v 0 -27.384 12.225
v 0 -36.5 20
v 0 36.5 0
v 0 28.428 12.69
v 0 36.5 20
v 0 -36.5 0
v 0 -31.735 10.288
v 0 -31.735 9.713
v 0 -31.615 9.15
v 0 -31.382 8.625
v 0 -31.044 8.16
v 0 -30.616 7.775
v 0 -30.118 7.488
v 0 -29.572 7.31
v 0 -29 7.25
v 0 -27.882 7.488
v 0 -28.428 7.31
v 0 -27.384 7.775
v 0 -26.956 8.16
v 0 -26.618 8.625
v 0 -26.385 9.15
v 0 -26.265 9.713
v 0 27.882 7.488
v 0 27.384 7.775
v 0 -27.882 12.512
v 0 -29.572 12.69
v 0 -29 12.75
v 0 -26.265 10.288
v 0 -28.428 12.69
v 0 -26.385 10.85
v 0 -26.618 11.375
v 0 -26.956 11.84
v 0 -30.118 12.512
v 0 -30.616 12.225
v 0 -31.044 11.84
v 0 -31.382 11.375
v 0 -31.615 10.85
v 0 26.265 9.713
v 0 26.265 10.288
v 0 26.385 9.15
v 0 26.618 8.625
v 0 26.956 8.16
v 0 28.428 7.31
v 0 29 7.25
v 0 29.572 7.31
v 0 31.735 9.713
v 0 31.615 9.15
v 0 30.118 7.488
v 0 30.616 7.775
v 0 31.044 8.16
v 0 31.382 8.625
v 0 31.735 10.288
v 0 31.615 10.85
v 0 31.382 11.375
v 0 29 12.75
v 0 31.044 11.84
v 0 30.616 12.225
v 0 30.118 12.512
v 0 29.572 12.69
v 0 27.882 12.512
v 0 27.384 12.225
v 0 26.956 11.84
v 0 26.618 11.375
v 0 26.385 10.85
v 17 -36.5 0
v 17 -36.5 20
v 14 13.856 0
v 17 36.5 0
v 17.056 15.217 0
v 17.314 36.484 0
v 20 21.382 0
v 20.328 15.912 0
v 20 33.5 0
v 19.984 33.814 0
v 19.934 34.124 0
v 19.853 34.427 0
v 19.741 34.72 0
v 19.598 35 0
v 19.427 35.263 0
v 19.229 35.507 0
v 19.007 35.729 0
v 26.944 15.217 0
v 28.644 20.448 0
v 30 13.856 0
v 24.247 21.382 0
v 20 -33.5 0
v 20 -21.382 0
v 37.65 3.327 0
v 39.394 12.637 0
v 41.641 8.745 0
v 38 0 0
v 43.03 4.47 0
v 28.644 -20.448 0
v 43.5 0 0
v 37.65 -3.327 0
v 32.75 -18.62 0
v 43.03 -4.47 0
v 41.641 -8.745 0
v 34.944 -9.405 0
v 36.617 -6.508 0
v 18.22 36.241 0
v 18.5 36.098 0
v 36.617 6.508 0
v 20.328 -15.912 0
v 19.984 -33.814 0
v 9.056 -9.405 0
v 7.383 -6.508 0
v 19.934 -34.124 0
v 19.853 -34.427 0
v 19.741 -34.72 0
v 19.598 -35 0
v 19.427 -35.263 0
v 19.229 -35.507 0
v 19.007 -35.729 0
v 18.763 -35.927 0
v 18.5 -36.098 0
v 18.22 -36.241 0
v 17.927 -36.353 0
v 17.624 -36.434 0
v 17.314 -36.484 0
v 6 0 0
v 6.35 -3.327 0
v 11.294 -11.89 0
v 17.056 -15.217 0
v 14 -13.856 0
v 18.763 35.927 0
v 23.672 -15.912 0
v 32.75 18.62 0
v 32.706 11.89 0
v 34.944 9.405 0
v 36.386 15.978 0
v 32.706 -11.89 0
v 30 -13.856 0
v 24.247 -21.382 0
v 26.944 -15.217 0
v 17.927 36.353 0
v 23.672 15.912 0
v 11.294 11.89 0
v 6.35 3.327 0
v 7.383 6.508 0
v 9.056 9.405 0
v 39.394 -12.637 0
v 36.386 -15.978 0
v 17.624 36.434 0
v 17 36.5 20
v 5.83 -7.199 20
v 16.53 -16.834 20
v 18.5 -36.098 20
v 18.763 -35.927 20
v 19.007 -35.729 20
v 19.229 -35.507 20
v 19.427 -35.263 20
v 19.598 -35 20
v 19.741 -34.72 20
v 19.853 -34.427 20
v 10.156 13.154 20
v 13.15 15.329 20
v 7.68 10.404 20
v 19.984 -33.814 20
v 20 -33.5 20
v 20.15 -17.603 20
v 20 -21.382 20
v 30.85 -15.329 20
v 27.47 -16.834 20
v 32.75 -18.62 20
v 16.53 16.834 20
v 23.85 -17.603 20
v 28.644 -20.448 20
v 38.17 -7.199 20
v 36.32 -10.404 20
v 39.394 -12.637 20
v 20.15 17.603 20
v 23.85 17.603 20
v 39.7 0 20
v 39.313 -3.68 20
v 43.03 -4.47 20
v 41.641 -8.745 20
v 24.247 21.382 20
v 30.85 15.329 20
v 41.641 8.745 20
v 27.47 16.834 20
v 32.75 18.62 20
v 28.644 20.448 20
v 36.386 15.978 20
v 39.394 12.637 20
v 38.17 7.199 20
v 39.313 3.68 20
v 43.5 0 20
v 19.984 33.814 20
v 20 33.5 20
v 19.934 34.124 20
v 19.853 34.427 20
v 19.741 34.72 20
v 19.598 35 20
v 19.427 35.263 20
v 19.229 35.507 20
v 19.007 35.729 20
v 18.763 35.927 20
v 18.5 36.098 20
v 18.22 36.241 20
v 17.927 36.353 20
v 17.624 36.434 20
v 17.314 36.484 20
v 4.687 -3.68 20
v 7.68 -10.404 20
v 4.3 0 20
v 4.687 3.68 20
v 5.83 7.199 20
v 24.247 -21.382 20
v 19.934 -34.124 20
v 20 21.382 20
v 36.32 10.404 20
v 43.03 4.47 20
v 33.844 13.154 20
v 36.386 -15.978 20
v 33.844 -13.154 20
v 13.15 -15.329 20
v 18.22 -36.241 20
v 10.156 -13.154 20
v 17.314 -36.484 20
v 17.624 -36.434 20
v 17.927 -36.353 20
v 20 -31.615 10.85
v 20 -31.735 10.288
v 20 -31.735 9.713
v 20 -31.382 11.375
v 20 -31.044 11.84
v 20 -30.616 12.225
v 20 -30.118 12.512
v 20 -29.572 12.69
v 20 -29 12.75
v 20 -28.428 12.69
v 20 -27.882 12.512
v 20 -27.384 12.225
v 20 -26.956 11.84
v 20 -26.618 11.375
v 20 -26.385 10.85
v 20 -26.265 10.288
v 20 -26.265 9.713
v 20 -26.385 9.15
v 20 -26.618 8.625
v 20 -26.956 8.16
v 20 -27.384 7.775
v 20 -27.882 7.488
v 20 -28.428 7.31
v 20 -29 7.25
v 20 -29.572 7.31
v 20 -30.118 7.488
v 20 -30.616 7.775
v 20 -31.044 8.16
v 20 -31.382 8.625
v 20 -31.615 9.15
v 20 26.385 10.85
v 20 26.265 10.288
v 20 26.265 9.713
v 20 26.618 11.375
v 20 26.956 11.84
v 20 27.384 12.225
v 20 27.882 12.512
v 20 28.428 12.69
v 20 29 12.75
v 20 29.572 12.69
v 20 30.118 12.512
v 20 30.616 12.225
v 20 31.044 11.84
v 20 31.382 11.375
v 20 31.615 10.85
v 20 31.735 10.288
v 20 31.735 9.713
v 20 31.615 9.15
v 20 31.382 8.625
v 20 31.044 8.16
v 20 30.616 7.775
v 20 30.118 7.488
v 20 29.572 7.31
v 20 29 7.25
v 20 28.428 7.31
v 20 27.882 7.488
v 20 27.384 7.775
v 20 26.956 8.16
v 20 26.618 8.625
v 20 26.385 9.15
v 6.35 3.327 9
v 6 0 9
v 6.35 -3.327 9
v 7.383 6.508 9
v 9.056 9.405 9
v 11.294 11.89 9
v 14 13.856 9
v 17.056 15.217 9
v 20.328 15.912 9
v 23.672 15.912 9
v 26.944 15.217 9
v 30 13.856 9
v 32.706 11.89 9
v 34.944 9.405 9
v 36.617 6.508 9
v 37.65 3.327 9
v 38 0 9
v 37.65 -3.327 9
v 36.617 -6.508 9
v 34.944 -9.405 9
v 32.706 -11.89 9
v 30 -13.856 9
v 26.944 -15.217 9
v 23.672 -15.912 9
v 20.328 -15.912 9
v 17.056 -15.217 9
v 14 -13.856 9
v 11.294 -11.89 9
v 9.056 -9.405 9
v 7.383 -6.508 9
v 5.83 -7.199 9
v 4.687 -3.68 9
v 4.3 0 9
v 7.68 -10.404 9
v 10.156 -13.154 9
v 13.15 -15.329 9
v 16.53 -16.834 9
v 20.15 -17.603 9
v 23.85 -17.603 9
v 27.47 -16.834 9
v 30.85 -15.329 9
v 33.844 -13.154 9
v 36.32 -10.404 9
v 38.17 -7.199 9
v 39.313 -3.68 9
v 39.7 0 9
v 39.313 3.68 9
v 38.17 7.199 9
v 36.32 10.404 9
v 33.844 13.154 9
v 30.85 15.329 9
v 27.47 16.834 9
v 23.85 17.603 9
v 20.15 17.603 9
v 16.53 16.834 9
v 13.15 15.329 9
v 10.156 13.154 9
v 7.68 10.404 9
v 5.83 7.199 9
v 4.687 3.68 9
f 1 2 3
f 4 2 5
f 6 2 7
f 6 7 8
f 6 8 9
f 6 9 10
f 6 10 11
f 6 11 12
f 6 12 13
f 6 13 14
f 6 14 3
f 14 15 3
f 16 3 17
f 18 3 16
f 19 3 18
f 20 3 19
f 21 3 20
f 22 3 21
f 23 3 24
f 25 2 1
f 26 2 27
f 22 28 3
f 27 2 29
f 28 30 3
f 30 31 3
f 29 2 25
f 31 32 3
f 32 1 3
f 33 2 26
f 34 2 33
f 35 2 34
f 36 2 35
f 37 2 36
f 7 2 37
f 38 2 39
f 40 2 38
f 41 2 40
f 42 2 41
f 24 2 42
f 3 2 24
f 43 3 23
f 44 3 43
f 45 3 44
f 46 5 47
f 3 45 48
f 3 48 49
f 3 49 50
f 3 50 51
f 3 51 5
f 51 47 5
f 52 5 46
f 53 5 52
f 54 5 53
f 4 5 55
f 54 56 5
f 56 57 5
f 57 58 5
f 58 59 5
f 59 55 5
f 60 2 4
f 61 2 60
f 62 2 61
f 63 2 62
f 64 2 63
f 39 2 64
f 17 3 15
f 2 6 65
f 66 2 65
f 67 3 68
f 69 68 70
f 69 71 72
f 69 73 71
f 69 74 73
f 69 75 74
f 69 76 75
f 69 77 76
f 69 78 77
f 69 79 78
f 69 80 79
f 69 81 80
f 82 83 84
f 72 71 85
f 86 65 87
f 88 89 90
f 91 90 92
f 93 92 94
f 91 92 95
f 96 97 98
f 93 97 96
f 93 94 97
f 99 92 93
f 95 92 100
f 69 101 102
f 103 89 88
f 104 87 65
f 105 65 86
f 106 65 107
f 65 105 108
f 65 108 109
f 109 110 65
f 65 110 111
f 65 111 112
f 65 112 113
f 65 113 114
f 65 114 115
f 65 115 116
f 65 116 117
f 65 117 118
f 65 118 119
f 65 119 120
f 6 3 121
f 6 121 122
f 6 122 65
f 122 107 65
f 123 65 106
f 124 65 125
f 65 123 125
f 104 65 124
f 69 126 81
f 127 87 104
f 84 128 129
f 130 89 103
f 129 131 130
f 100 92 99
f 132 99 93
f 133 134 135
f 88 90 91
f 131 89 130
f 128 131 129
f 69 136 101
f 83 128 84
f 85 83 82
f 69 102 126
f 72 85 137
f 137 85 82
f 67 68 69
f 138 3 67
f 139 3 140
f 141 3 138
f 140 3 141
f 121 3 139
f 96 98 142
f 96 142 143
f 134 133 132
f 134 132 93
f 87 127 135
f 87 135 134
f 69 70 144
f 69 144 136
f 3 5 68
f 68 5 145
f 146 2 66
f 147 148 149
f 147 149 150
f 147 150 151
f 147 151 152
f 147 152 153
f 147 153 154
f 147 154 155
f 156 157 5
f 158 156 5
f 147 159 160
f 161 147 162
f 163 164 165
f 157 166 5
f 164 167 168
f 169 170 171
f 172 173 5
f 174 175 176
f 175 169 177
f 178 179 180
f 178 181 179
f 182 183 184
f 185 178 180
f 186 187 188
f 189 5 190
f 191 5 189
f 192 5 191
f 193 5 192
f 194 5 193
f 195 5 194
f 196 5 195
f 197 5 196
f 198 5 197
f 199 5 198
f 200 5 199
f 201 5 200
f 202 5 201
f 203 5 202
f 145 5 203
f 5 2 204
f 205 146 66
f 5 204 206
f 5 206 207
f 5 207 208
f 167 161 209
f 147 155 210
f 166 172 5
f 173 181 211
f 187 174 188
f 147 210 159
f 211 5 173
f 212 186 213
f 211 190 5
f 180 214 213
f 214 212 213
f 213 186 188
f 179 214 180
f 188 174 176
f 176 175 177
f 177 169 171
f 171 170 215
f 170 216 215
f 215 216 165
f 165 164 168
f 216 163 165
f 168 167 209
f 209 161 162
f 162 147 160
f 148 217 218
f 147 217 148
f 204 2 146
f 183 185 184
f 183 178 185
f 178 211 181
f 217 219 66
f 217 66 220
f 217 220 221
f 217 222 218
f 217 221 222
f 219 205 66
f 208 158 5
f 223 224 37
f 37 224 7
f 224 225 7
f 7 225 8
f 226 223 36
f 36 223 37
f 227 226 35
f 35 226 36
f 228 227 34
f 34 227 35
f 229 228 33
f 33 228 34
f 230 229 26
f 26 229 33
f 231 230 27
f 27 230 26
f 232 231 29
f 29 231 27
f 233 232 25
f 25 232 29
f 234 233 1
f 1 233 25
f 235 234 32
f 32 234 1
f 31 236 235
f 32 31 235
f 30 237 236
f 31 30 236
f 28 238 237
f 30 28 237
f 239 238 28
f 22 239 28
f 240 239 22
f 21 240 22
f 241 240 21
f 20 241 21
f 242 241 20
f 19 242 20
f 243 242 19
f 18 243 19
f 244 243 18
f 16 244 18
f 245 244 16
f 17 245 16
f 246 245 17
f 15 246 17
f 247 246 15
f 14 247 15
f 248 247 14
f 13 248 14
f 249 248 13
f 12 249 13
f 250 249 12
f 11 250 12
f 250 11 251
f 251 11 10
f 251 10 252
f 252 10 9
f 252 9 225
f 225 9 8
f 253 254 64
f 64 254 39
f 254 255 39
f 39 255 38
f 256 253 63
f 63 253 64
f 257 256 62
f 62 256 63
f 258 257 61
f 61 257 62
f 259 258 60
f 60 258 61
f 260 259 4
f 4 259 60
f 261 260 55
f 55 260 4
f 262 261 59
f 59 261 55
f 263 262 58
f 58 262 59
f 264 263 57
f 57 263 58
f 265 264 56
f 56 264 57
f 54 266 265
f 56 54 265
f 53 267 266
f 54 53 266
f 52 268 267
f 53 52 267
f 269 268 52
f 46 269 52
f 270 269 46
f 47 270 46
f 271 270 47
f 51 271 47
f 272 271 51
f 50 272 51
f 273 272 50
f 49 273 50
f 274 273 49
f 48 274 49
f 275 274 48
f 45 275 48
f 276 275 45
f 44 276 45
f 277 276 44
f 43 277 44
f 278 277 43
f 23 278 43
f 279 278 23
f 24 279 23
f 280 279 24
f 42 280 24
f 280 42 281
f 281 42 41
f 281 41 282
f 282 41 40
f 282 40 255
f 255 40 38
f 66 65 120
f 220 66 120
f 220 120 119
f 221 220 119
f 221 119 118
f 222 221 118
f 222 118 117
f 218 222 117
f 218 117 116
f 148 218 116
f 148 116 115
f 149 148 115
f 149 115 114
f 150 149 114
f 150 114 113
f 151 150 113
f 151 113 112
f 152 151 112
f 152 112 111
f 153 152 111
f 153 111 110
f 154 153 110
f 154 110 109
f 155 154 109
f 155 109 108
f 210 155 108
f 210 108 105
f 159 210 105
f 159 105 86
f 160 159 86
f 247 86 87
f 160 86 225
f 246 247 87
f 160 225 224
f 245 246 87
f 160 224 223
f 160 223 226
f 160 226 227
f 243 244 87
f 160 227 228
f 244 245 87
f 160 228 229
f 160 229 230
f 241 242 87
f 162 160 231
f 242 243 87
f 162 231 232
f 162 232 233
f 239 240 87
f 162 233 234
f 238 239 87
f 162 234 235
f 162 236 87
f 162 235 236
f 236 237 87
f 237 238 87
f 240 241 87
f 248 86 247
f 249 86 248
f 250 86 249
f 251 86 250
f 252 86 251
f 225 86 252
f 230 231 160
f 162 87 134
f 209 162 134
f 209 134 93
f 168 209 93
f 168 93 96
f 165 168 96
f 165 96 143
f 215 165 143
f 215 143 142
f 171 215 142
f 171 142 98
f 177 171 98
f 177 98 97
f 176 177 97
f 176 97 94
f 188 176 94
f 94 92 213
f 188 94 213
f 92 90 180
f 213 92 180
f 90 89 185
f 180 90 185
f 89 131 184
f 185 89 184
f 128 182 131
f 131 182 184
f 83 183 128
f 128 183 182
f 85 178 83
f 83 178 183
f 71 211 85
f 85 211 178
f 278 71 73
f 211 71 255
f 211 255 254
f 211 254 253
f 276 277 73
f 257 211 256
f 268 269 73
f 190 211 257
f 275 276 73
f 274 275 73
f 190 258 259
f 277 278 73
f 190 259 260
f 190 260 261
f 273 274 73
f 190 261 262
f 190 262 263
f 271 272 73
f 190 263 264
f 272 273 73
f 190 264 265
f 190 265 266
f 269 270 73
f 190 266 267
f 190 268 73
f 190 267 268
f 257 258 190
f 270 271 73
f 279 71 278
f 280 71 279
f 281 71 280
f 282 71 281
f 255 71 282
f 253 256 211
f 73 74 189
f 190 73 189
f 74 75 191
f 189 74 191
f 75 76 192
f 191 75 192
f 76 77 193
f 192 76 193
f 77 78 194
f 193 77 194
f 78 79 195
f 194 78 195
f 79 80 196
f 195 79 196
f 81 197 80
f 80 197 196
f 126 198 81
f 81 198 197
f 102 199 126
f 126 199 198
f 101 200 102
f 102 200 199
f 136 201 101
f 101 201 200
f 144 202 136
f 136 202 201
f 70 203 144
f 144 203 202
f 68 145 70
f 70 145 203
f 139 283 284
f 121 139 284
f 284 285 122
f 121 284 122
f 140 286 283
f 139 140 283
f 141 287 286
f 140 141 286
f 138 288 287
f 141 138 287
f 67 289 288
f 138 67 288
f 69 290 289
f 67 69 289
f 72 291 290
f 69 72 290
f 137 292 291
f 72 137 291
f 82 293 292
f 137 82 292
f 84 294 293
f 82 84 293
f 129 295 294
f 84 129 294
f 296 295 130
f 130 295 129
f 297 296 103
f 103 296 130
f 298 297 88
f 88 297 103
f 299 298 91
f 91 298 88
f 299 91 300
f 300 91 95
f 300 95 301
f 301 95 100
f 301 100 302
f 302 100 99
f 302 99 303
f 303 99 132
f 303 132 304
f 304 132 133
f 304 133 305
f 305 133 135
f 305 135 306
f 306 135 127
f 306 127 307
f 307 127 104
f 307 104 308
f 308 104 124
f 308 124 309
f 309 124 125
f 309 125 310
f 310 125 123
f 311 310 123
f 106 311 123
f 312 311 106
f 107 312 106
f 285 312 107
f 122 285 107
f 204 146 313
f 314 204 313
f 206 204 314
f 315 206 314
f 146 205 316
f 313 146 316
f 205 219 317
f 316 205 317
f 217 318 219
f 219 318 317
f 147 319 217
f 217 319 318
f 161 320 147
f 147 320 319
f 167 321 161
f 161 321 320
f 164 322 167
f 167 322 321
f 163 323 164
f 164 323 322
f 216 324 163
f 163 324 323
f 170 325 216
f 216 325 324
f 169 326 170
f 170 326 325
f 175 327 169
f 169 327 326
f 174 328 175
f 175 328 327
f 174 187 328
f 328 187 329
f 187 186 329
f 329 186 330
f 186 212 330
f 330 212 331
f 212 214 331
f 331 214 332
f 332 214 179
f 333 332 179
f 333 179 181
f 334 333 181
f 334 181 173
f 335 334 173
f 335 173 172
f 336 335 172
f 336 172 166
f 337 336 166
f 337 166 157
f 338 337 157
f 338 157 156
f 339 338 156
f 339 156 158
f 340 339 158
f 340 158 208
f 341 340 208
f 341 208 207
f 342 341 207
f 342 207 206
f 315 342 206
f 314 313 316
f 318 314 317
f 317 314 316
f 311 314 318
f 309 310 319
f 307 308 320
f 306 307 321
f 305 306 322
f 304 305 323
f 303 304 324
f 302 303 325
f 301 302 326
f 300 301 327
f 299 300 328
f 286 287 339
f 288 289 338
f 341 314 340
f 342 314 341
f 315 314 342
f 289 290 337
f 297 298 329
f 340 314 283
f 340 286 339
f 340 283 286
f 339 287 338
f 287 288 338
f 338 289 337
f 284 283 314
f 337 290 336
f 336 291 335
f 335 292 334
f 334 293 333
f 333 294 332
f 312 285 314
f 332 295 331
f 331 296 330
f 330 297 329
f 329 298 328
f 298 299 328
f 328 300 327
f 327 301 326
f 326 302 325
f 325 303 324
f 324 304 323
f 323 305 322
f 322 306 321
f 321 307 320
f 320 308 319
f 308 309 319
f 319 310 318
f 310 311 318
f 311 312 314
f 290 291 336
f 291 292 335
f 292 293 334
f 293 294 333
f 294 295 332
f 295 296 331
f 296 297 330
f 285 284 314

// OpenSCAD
// file: library.scad
//rounded cube Functions from: http://www.thingiverse.com/thing:38069


module cube_fillet(size,radius=-1,vertical,top,bottom,center=false,$fn=0){
    if (center) {
        cube_fillet_inside(size, radius, vertical, top, bottom, $fn=$fn);
    } else {
        translate([size[0]/2, size[1]/2, size[2]/2])
            cube_fillet_inside(size, radius, vertical, top, bottom, $fn=$fn);
    }
}
module fillet(radius, height=100, $fn=60) {  
    //this creates negative of fillet,
    //i.e. thing to be substracted from object
    translate([-radius, -radius, -height/2-0.01])
        difference() {
            cube([radius*2, radius*2, height+0.02]);
            cylinder(r=radius, h=height+0.02, $fn=$fn);
        }
}

module cube_negative_fillet(size,radius=-1,vertical, top,bottom,$fn=0){
    j=[1,0,1,0];

    for (i=[0:3]) {
        if (radius > -1) {
            rotate([0, 0, 90*i])
                translate([size[1-j[i]]/2, size[j[i]]/2, 0])
                    fillet(radius, size[2], $fn=$fn);
        } else {
            rotate([0, 0, 90*i])
                translate([size[1-j[i]]/2, size[j[i]]/2, 0])
                    fillet(vertical[i], size[2], $fn=$fn);

        }
        rotate([90*i, -90, 0])
            translate([size[2]/2, size[j[i]]/2, 0 ])
                fillet(top[i], size[1-j[i]], $fn=$fn);
        rotate([90*(4-i), 90, 0])
            translate([size[2]/2, size[j[i]]/2, 0])
                fillet(bottom[i], size[1-j[i]], $fn=$fn);
    }
}

module cube_fillet_inside(size,radius=-1,vertical,top,bottom,$fn=0){

    if (radius == 0) {
        cube(size, center=true);
    } else {
        difference() {
            cube(size, center=true);
            cube_negative_fillet(size, radius, vertical, top, bottom, $fn=$fn);
        }
    }
}
// file: dimensions.scad
// Dimensions
// Author: sdavi


LM8UU = [8, 15, 24];//rod diameter,outter diameter, length
LM12UU = [12, 21, 30];
LM12LUU = [12, 21, 57];
LM12UUx2 = [LM12UU[0], LM12UU[1], LM12UU[2]*2];

BEARING_624 = [4,13,5]; //inner diameter(hole), outter diameter, thickness (http://reprap.org/wiki/Ball_bearing)
BEARING_2x624 = [4, 13, 10]; // 2 624 bearings together, good size for GT2

BEARING_6300 = [10,35,11]; //inner diameter, outer diameter, thickness

vslot_wheel = [23.89,10.23];	//23.89 & 10.23
vslot_wheel_hole = 5+0.5;
vslot_wheel_eccentric = 7.2+0.5; //hole for eccentric spacer
vslot_wheel_spacer_length = 6.35;


t_nut_length = 15+1; //hole in center 1mm cleanance incase hole isnt actually center




GT2_belt_width = 6;
GT2_belt_pitch = 2;
GT2_belt_thickness = 1.38;
GT2_belt_tooth_height = 0.75;  
GT2_belt_tooth_ratio = 0.5;



GT2_pulley_geared_diameter=12.2;//measured from top of tooth to top of tooth opp side// 12.2 is for the 20 tooth pulley

//from metric (prusa i3)
m4_diameter = 4.6;
m4_nut_diameter = 7.6;
m4_nut_diameter_horizontal = 8.15;

m3_diameter = 3.6;
m3_nut_diameter = 5.3;
m3_nut_diameter_horizontal = 6.8;
m3_washer_diameter = 6.9;
//end i3 variables

m5_diameter = 5.5;

//Hex Head M3x30: Head 5.5mm flat to flat, 2.12mm thick
m3_hex_head_diameter = 5.5*2/sqrt(3) + 0.2;

M4 = m4_diameter;
M3 = m3_diameter;
M5 = m5_diameter;
m4_washer_thickness = 0.8; //flat and penny washers
m4_washer_diameter = 9.6;

nema17_holes = 31;// mm between screws
nema17_width = 42; //width
nema17_height = 48;
// file: configuration.scad
// Configuration
// Author: sdavi


include <dimensions.scad>
use <library.scad>


x_rod_distance = 45;

y_bearing = LM8UU;
x_bearing = LM8UU;
//z_bearing = LM12UUx2;
z_bearing = LM12LUU;
belt_bearing = BEARING_2x624;


end_belt_bearing_distance = 25;// distance between 2 bearings on y-ends
belt_clearance = 9.5; //space for belts
x_belt_clearance = 5; //spacing between x-axis vslot and belt

frame_screw = M5; //m5 screws for v/tslot

// calculated vars


//y bearing block
y_bearing_block_length = 2*y_bearing[2] + M3*2 + 5;
//y_bearing_block_width = y_bearing[1]+5;
y_bearing_block_width = 20; //vslot frame width

y_bearing_block_height = 6+y_bearing[1]/2;

//xy_bearing_distance = y_bearing_block_width/2+belt_clearance+belt_bearing[1]/2; //distance between center of y-bearing to center of x-belt bearing 
xy_bearing_distance = vslot_wheel[1]/2+vslot_wheel_spacer_length+belt_clearance+belt_bearing[1]/2; //distance between center of v_slot to center of x-belt bearing 




//min height for belt bearings
min_beltbearing_height = max(((belt_bearing[2]+m4_washer_thickness*2) * 2), y_bearing_block_height);
// file: lib/z_motor_mount.scad
// z_ends
// Author: sdavi



include <../configuration.scad>
include <../dimensions.scad>


nema_mount_thickness = 10;
nema_mount_height = 30;

nema_padding = 3;
side_thickness=15;

frame_width=20; //20x20

z_motor_mount_height=nema_padding+nema17_height+nema_mount_thickness;
z_motor_mount_width = side_thickness+nema_padding+nema17_width+nema_padding+side_thickness;
z_motor_mount_length = frame_width+1+nema17_width;


shaft_center =  1+nema17_width/2;
echo("ShaftCenter: ", shaft_center);


echo("height: ", z_motor_mount_height);
echo("width: ", z_motor_mount_width);
echo("length: ", z_motor_mount_length);


bearing_mount();
//z_motor_end(single_piece=1);



module z_motor_end(single_piece=0){

	if(single_piece==1){
		translate([0,0,z_motor_mount_height])rotate([180,0,0])
			z_motor_end_single();
	} else {



		rotate([0,-90,-90])intersection(){
			translate([0,0,z_motor_mount_height])rotate([180,0,0])
				z_motor_end_main();
			translate([-0.1, -z_motor_mount_length-0.1, -0.1])
				cube([30.1, z_motor_mount_length+0.2, z_motor_mount_height+0.2]);

		}

		translate([5,0,z_motor_mount_width])rotate([0,90,90])intersection(){
			translate([0,0,z_motor_mount_height])rotate([180,0,0])
				z_motor_end_main();
			translate([z_motor_mount_width-30, -z_motor_mount_length-0.1, -0.1])
				cube([30.1, z_motor_mount_length+0.2, z_motor_mount_height+0.2]);

		}




	}
	
	

}



module z_motor_end_single(){
	union(){
		z_motor_end_main(single_piece=1);
		
		//add thin part to print without supports (drill out)
		for(x= [side_thickness/2, z_motor_mount_width-side_thickness/2]){
			
			// vertical screw
			translate([x,z_motor_mount_length-frame_width/2, 0]){
				//countersink to suit screw length				
				translate([0,0,frame_width+36])
					cylinder(d=12+1, h=0.2, $fn=60);
			}
		} //

	}

}

module z_motor_end_main(single_piece=0){
	
	rounded_corners = (single_piece==1)?[3,3,3,3]:[0,0,0,0]; //use rounded corners on the single piece
	
	difference(){	
		union(){
			cube_fillet([z_motor_mount_width, z_motor_mount_length, z_motor_mount_height], vertical=rounded_corners);
			//cube_fillet([z_length, nema_mount_thickness, nema_mount_height], vertical=[0,0,3,3], top=[0,3,0,3]);
		}

		//nema cutout;
		translate([side_thickness, -0.1,-0.1]) cube([nema_padding+nema17_width+nema_padding+0.1, nema17_width+1+0.1, nema_padding+nema17_height+0.1]);



		//cutout for frame
		translate([-0.1, z_motor_mount_length-20-0.1, -0.1])cube([z_motor_mount_width+0.2,20+0.2,20]);


		//nema holes
		translate([side_thickness+nema_padding+nema17_width/2, nema17_width/2, z_motor_mount_height-nema_mount_thickness-0.1]){
			cylinder(d=28, h=nema_mount_thickness+0.2, $fn=60);//central hole
			
			translate([-nema17_holes/2, -nema17_holes/2, 0]) cylinder(d=M3, h=nema_mount_thickness+0.2, $fn=60);
			translate([-nema17_holes/2, nema17_holes/2, 0]) cylinder(d=M3, h=nema_mount_thickness+0.2, $fn=60);
			translate([nema17_holes/2, -nema17_holes/2, 0]) cylinder(d=M3, h=nema_mount_thickness+0.2, $fn=60);
			translate([nema17_holes/2, nema17_holes/2, 0]) cylinder(d=M3, h=nema_mount_thickness+0.2, $fn=60);

/*			rotate([-90,0,0]) 
				cylinder(d=M3, h=nema_mount_thickness+0.4, $fn=60);
			translate([nema17_holes, 0,0]) rotate([-90,0,0]) 
				cylinder(d=M3, h=nema_mount_thickness+0.2, $fn=60);
			translate([nema17_holes/2, 0, nema17_holes/2]) rotate([-90,0,0])
				cylinder(d=28, h=nema_mount_thickness+0.2, $fn=60);// central nema hole
*/
		}


		//curved end
		translate([-0.1,-10, 0]) rotate([0,90,0])cylinder(d=60, h=z_motor_mount_width+0.2, $fn=60);		



		//21 height for screw horiz for 25mm screw;
		//36 depth for vert for 40mm screw


		//frame holes
		for(x= [side_thickness/2, z_motor_mount_width-side_thickness/2]){
			//horizontal screw
			translate([x,-0.1,frame_width/2 ]){
				rotate([-90,0,0])
					cylinder(d=frame_screw, h=z_motor_mount_length, $fn=60);
				//countersink to suit screw length
				rotate([-90,0,0])
					cylinder(d=11.5, h=z_motor_mount_length-frame_width-21, $fn=60);
				
			}

			// vertical screw
			translate([x,z_motor_mount_length-frame_width/2, 0]){
				cylinder(d=frame_screw, h=z_motor_mount_height, $fn=60);
				//countersink to suit screw length				
				translate([0,0,frame_width+36])
					cylinder(d=12, h=z_motor_mount_height, $fn=60);
			}
		} //end for loop
	} // end difference


} // end module


module bearing_mount(){

	bearing_end_length=BEARING_6300[1]+8 + 15+15; 
	bearing_end_width=20;
	bearing_end_height=20;



	difference(){
		union(){
			translate([shaft_center, 0,0]) 
				cylinder(d=BEARING_6300[1]+8, h=bearing_end_height, $fn=30);
			translate([0,-bearing_end_length/2,0])
				cube_fillet([bearing_end_width, bearing_end_length, bearing_end_height], vertical=[3,0,0,3]);
			
		}
	
		//center hole for rod
		translate([shaft_center,0,-0.1]) 
			cylinder(d=BEARING_6300[1]-3, h=bearing_end_height+0.2, $fn=30);
		
		//hole for bearing 6300z
		translate([shaft_center,0,bearing_end_height-BEARING_6300[2]]) 
			cylinder(d=BEARING_6300[1]+0.4, h=BEARING_6300[2]+0.1, $fn=30);
	
		//frame_holes
		translate([-0.1,-bearing_end_length/2+15/2, bearing_end_height/2]) 
			rotate([0,90,0])cylinder(d=frame_screw, h=bearing_end_width+0.2, $fn=30);
		translate([-0.1, bearing_end_length/2-15/2, bearing_end_height/2])
			rotate([0,90,0])cylinder(d=frame_screw, h=bearing_end_width+0.2, $fn=30);
		
	}

}
// main file
// z_Bearing_mount
// Author: sdavi


include <lib/z_motor_mount.scad>

bearing_mount();
